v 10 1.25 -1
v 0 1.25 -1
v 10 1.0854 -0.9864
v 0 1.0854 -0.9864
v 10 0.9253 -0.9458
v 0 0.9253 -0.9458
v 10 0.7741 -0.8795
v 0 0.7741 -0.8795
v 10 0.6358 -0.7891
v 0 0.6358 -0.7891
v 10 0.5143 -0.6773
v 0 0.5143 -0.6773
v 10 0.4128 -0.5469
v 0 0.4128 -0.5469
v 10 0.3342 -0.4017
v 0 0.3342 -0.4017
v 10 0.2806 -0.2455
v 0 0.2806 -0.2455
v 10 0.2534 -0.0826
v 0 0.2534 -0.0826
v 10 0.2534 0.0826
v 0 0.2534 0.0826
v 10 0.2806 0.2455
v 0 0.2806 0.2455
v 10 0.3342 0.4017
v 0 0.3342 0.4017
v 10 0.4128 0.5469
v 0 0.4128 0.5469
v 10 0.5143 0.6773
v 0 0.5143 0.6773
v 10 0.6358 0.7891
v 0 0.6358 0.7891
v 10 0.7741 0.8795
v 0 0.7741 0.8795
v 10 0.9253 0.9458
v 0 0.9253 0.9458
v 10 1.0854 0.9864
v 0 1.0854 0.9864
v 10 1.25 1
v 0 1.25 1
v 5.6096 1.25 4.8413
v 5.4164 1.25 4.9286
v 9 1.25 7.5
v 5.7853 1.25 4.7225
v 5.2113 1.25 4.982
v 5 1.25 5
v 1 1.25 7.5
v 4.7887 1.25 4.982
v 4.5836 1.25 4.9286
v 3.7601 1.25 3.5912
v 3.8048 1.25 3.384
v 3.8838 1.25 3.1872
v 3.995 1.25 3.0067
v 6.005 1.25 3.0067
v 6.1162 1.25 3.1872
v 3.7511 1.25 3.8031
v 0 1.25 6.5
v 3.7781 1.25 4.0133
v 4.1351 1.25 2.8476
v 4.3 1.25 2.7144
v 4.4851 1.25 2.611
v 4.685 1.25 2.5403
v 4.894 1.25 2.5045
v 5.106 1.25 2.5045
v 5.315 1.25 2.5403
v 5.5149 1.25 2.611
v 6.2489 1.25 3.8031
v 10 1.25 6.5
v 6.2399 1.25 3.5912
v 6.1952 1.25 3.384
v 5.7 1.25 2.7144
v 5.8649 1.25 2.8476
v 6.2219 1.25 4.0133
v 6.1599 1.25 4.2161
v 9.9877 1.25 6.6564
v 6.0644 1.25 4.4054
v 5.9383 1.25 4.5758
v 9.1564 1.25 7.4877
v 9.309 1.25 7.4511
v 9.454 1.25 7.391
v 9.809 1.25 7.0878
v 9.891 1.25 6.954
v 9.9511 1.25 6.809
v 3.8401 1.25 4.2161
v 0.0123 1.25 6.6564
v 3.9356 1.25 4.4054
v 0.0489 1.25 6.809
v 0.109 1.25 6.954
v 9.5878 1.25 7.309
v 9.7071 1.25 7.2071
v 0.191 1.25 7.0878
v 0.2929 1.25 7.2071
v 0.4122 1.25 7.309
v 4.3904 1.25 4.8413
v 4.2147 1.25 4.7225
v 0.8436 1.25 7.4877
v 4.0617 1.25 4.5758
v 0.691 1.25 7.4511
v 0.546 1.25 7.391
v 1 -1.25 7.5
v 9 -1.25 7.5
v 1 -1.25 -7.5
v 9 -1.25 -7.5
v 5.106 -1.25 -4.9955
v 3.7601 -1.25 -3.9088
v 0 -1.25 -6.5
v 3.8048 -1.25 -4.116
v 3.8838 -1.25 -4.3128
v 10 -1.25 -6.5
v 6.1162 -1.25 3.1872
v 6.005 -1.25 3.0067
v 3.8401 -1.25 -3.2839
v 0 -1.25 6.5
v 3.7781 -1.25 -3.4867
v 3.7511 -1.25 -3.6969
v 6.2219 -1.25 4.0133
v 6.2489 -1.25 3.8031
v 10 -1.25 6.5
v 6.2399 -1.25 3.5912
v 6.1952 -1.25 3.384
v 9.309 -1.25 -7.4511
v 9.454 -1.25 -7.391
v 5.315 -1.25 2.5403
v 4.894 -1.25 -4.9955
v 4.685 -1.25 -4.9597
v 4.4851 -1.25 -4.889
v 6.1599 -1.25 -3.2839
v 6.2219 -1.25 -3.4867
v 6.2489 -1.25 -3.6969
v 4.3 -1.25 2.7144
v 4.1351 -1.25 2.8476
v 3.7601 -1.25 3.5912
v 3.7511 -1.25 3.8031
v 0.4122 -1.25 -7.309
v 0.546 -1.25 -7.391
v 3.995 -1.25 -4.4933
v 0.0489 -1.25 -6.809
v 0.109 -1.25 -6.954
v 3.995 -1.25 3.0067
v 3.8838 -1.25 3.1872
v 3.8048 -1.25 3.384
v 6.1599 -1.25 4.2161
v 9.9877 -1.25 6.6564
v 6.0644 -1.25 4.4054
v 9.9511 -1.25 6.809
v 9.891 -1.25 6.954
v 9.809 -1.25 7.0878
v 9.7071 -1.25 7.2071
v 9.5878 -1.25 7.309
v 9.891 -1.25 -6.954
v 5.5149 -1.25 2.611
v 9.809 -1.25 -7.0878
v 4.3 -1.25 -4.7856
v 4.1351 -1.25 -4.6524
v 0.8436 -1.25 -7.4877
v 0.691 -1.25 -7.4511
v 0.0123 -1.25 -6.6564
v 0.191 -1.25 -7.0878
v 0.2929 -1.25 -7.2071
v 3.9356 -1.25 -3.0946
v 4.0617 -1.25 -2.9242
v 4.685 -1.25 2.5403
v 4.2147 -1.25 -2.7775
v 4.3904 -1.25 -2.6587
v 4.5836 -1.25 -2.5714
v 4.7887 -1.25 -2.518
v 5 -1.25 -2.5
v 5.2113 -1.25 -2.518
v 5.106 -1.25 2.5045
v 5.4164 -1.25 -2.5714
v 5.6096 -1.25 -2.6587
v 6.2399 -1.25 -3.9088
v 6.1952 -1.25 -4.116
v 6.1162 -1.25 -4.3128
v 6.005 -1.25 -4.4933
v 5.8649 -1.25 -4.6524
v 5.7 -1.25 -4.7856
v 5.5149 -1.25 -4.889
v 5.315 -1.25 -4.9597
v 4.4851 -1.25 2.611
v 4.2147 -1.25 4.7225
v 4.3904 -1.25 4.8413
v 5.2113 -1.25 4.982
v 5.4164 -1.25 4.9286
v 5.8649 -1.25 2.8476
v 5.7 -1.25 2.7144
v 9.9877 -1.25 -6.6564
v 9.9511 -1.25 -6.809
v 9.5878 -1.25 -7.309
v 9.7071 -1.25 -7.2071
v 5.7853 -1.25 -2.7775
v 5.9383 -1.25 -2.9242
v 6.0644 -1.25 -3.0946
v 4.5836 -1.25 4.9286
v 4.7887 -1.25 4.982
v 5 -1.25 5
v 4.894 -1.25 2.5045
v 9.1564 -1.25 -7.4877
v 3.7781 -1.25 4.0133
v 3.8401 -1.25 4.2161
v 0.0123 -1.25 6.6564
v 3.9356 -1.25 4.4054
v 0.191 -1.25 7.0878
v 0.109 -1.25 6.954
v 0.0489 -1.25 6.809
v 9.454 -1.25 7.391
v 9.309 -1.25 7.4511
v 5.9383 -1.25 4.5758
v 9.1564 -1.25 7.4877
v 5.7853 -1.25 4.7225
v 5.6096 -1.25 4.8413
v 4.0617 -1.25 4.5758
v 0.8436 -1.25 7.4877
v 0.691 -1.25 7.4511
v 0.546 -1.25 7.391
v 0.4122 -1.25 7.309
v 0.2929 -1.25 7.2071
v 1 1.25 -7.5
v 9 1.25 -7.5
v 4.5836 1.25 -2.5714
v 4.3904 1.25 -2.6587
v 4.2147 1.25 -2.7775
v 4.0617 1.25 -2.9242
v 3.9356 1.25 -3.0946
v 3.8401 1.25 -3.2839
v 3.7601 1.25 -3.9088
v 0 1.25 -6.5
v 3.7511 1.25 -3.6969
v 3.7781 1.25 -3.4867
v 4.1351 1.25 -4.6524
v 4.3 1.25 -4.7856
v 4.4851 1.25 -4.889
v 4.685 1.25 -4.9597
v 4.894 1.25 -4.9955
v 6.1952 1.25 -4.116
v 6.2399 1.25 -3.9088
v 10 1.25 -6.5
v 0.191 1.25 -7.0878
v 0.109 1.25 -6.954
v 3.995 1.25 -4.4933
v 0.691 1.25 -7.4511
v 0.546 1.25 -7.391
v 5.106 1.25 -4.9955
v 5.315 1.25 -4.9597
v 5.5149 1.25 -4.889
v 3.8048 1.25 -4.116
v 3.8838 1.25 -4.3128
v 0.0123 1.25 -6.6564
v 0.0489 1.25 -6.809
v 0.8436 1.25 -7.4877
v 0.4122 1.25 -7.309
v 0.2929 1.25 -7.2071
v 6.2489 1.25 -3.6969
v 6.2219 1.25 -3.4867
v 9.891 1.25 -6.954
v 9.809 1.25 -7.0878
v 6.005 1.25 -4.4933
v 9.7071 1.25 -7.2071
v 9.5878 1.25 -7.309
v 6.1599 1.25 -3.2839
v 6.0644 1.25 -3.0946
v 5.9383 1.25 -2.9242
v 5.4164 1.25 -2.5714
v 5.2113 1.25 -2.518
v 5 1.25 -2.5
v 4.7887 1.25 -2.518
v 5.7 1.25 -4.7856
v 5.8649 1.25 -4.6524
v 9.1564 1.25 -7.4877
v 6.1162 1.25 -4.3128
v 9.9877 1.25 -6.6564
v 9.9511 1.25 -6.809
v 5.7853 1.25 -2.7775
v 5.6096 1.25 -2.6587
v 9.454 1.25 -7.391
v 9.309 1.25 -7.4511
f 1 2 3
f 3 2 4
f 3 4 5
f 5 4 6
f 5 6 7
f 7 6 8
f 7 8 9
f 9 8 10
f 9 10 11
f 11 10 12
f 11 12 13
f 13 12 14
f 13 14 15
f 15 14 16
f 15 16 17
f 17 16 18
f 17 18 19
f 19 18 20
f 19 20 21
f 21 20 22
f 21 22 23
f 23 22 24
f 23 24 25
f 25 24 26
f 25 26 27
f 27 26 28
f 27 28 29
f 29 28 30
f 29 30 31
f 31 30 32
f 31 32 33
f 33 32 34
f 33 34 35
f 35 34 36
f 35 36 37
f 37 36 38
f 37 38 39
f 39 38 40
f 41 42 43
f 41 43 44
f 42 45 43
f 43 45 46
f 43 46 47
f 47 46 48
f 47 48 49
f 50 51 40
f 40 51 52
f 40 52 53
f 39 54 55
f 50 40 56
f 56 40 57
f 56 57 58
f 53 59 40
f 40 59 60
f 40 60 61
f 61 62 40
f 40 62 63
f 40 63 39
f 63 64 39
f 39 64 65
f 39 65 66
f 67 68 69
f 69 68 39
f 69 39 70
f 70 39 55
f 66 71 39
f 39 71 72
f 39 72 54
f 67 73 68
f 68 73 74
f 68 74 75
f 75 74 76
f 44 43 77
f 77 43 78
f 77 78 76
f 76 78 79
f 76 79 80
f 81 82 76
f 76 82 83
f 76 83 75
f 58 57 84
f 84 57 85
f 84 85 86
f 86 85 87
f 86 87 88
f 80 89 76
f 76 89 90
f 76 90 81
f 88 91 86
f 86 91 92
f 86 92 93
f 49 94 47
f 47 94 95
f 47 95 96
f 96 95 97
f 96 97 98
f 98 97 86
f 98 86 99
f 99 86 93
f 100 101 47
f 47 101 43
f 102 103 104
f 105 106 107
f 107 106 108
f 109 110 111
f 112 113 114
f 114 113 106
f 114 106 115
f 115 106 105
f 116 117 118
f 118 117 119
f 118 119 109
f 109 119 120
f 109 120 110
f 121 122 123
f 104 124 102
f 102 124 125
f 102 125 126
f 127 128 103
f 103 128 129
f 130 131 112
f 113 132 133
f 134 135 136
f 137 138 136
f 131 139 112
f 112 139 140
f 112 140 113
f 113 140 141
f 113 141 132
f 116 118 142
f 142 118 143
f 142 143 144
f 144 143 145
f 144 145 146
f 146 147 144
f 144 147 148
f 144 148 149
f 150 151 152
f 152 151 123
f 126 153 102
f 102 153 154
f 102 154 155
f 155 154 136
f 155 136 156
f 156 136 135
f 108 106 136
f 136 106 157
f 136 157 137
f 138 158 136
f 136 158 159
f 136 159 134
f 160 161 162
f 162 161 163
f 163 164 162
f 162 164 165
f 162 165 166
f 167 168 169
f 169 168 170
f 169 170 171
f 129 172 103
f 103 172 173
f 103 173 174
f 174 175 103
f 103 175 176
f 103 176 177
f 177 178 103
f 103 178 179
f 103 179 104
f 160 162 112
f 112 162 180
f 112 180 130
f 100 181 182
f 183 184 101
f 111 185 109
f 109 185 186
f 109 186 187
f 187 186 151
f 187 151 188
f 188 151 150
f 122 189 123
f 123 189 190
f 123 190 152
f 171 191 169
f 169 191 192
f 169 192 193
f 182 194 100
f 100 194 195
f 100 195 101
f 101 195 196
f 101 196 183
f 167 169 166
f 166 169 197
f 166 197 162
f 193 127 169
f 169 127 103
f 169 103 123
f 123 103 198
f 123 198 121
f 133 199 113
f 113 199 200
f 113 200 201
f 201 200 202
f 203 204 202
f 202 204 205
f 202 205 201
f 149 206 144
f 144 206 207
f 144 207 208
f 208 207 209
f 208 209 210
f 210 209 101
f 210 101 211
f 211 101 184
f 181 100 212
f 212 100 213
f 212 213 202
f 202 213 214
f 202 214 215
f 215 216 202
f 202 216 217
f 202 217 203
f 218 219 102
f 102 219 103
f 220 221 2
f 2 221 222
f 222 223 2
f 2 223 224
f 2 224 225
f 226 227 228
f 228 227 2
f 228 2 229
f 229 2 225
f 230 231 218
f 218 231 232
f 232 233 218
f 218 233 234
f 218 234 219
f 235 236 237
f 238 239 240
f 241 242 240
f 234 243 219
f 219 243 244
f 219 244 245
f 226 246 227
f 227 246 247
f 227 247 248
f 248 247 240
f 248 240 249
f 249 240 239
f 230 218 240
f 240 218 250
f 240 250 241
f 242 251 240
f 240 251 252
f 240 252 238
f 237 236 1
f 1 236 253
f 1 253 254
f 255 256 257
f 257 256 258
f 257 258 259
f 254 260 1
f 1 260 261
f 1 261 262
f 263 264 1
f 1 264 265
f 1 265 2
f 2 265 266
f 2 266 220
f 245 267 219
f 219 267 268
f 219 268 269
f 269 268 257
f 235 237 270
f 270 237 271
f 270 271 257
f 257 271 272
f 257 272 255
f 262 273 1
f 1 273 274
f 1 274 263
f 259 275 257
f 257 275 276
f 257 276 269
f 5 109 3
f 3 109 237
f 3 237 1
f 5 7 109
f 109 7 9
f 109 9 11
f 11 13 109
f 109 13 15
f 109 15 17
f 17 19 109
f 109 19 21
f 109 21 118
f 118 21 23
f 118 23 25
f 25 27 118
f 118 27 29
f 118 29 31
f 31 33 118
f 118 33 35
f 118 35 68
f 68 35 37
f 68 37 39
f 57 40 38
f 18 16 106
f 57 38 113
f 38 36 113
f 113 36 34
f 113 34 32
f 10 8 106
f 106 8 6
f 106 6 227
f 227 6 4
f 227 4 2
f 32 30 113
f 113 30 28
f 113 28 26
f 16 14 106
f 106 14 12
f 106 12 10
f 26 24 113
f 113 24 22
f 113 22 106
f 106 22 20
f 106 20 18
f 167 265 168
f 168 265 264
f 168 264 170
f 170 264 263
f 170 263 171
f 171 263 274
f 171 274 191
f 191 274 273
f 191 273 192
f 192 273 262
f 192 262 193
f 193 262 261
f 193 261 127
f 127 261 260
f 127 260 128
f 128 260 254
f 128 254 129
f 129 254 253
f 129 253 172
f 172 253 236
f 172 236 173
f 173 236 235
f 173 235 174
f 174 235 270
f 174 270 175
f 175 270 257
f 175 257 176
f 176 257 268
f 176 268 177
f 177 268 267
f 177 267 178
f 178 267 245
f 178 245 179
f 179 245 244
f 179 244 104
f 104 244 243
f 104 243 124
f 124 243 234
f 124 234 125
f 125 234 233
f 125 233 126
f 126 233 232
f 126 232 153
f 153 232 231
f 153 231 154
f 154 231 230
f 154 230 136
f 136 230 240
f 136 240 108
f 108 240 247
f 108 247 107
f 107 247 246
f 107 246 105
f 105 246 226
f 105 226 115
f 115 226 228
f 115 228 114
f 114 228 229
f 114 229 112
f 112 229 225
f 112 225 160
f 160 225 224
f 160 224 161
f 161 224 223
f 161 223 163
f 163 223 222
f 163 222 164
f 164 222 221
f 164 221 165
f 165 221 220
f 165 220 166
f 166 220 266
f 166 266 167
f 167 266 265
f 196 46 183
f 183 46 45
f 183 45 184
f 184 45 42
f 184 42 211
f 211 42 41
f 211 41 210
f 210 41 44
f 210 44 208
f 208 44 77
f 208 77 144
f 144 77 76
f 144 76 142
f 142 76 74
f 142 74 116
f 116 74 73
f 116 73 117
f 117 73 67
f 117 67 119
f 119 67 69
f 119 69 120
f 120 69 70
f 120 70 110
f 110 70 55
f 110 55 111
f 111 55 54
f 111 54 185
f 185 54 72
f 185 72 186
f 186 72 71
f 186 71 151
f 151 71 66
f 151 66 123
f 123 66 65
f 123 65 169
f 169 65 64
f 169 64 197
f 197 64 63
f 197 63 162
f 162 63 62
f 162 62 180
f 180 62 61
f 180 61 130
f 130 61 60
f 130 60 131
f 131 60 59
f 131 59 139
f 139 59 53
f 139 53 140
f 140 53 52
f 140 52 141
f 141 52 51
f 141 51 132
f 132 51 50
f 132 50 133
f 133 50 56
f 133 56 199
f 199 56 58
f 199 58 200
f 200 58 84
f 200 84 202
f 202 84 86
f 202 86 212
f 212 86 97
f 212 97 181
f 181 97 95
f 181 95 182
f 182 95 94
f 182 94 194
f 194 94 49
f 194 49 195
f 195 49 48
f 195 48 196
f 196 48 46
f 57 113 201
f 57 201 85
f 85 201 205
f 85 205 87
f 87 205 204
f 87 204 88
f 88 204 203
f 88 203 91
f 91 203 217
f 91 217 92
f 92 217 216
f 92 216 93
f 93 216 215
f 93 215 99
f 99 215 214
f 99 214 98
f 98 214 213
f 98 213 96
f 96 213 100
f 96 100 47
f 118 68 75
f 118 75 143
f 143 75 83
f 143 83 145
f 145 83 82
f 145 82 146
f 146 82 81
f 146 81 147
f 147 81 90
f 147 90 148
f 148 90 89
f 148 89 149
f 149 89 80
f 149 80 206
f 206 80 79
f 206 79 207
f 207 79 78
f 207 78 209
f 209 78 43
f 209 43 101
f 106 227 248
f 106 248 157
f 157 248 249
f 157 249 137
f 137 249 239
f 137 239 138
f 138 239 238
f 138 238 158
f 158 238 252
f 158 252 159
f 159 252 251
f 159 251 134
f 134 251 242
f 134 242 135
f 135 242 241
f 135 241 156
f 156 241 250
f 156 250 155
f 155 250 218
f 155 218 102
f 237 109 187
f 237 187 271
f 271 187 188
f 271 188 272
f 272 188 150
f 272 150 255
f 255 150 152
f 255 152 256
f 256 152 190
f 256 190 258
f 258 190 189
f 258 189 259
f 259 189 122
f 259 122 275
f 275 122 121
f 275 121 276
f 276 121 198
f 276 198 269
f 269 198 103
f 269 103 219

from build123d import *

# Parameters (mm, degrees)
EXTRUDE_1_DEPTH     = 10
SKETCH_2_R          = 1.25
CUT_EXTRUDE_1_DEPTH = 13.747548784
FILLET_1_R          = 1


with BuildPart() as part:
    # 草图1 → 凸台-拉伸1 (new body)
    with BuildSketch(Plane(origin=(0, 0, 0), x_dir=(0, 0, -1), z_dir=(1, 0, 0))):
        with BuildLine():
            Line((7.5, 1.25), (1, 1.25))
            ThreePointArc((1, 1.25), (0, 0.25), (-1, 1.25))
            Line((-1, 1.25), (-7.5, 1.25))
            Line((-7.5, 1.25), (-7.5, -1.25))
            Line((-7.5, -1.25), (7.5, -1.25))
            Line((7.5, -1.25), (7.5, 1.25))
        make_face()
    extrude(amount=EXTRUDE_1_DEPTH)

    # 草图2 → 切除-拉伸1 (cut, through all)
    with BuildSketch(Plane(origin=(0, 1.25, 0), x_dir=(1, 0, 0), z_dir=(0, 1, 0))):
        with Locations(Location((5, 3.75, 0), (0, 0, 270))):
            Circle(SKETCH_2_R)
        with Locations(Location((5, -3.75, 0), (0, 0, 270))):
            Circle(SKETCH_2_R)
    extrude(amount=-CUT_EXTRUDE_1_DEPTH, mode=Mode.SUBTRACT)

    # 圆角1
    fillet_1_edges = [part.edges().sort_by_distance(p)[0] for p in [
        (10, 0, 7.5),
        (10, 0, -7.5),
        (0, 0, -7.5),
        (0, 0, 7.5),
    ]]
    fillet(fillet_1_edges, radius=FILLET_1_R)


solid = part.part
